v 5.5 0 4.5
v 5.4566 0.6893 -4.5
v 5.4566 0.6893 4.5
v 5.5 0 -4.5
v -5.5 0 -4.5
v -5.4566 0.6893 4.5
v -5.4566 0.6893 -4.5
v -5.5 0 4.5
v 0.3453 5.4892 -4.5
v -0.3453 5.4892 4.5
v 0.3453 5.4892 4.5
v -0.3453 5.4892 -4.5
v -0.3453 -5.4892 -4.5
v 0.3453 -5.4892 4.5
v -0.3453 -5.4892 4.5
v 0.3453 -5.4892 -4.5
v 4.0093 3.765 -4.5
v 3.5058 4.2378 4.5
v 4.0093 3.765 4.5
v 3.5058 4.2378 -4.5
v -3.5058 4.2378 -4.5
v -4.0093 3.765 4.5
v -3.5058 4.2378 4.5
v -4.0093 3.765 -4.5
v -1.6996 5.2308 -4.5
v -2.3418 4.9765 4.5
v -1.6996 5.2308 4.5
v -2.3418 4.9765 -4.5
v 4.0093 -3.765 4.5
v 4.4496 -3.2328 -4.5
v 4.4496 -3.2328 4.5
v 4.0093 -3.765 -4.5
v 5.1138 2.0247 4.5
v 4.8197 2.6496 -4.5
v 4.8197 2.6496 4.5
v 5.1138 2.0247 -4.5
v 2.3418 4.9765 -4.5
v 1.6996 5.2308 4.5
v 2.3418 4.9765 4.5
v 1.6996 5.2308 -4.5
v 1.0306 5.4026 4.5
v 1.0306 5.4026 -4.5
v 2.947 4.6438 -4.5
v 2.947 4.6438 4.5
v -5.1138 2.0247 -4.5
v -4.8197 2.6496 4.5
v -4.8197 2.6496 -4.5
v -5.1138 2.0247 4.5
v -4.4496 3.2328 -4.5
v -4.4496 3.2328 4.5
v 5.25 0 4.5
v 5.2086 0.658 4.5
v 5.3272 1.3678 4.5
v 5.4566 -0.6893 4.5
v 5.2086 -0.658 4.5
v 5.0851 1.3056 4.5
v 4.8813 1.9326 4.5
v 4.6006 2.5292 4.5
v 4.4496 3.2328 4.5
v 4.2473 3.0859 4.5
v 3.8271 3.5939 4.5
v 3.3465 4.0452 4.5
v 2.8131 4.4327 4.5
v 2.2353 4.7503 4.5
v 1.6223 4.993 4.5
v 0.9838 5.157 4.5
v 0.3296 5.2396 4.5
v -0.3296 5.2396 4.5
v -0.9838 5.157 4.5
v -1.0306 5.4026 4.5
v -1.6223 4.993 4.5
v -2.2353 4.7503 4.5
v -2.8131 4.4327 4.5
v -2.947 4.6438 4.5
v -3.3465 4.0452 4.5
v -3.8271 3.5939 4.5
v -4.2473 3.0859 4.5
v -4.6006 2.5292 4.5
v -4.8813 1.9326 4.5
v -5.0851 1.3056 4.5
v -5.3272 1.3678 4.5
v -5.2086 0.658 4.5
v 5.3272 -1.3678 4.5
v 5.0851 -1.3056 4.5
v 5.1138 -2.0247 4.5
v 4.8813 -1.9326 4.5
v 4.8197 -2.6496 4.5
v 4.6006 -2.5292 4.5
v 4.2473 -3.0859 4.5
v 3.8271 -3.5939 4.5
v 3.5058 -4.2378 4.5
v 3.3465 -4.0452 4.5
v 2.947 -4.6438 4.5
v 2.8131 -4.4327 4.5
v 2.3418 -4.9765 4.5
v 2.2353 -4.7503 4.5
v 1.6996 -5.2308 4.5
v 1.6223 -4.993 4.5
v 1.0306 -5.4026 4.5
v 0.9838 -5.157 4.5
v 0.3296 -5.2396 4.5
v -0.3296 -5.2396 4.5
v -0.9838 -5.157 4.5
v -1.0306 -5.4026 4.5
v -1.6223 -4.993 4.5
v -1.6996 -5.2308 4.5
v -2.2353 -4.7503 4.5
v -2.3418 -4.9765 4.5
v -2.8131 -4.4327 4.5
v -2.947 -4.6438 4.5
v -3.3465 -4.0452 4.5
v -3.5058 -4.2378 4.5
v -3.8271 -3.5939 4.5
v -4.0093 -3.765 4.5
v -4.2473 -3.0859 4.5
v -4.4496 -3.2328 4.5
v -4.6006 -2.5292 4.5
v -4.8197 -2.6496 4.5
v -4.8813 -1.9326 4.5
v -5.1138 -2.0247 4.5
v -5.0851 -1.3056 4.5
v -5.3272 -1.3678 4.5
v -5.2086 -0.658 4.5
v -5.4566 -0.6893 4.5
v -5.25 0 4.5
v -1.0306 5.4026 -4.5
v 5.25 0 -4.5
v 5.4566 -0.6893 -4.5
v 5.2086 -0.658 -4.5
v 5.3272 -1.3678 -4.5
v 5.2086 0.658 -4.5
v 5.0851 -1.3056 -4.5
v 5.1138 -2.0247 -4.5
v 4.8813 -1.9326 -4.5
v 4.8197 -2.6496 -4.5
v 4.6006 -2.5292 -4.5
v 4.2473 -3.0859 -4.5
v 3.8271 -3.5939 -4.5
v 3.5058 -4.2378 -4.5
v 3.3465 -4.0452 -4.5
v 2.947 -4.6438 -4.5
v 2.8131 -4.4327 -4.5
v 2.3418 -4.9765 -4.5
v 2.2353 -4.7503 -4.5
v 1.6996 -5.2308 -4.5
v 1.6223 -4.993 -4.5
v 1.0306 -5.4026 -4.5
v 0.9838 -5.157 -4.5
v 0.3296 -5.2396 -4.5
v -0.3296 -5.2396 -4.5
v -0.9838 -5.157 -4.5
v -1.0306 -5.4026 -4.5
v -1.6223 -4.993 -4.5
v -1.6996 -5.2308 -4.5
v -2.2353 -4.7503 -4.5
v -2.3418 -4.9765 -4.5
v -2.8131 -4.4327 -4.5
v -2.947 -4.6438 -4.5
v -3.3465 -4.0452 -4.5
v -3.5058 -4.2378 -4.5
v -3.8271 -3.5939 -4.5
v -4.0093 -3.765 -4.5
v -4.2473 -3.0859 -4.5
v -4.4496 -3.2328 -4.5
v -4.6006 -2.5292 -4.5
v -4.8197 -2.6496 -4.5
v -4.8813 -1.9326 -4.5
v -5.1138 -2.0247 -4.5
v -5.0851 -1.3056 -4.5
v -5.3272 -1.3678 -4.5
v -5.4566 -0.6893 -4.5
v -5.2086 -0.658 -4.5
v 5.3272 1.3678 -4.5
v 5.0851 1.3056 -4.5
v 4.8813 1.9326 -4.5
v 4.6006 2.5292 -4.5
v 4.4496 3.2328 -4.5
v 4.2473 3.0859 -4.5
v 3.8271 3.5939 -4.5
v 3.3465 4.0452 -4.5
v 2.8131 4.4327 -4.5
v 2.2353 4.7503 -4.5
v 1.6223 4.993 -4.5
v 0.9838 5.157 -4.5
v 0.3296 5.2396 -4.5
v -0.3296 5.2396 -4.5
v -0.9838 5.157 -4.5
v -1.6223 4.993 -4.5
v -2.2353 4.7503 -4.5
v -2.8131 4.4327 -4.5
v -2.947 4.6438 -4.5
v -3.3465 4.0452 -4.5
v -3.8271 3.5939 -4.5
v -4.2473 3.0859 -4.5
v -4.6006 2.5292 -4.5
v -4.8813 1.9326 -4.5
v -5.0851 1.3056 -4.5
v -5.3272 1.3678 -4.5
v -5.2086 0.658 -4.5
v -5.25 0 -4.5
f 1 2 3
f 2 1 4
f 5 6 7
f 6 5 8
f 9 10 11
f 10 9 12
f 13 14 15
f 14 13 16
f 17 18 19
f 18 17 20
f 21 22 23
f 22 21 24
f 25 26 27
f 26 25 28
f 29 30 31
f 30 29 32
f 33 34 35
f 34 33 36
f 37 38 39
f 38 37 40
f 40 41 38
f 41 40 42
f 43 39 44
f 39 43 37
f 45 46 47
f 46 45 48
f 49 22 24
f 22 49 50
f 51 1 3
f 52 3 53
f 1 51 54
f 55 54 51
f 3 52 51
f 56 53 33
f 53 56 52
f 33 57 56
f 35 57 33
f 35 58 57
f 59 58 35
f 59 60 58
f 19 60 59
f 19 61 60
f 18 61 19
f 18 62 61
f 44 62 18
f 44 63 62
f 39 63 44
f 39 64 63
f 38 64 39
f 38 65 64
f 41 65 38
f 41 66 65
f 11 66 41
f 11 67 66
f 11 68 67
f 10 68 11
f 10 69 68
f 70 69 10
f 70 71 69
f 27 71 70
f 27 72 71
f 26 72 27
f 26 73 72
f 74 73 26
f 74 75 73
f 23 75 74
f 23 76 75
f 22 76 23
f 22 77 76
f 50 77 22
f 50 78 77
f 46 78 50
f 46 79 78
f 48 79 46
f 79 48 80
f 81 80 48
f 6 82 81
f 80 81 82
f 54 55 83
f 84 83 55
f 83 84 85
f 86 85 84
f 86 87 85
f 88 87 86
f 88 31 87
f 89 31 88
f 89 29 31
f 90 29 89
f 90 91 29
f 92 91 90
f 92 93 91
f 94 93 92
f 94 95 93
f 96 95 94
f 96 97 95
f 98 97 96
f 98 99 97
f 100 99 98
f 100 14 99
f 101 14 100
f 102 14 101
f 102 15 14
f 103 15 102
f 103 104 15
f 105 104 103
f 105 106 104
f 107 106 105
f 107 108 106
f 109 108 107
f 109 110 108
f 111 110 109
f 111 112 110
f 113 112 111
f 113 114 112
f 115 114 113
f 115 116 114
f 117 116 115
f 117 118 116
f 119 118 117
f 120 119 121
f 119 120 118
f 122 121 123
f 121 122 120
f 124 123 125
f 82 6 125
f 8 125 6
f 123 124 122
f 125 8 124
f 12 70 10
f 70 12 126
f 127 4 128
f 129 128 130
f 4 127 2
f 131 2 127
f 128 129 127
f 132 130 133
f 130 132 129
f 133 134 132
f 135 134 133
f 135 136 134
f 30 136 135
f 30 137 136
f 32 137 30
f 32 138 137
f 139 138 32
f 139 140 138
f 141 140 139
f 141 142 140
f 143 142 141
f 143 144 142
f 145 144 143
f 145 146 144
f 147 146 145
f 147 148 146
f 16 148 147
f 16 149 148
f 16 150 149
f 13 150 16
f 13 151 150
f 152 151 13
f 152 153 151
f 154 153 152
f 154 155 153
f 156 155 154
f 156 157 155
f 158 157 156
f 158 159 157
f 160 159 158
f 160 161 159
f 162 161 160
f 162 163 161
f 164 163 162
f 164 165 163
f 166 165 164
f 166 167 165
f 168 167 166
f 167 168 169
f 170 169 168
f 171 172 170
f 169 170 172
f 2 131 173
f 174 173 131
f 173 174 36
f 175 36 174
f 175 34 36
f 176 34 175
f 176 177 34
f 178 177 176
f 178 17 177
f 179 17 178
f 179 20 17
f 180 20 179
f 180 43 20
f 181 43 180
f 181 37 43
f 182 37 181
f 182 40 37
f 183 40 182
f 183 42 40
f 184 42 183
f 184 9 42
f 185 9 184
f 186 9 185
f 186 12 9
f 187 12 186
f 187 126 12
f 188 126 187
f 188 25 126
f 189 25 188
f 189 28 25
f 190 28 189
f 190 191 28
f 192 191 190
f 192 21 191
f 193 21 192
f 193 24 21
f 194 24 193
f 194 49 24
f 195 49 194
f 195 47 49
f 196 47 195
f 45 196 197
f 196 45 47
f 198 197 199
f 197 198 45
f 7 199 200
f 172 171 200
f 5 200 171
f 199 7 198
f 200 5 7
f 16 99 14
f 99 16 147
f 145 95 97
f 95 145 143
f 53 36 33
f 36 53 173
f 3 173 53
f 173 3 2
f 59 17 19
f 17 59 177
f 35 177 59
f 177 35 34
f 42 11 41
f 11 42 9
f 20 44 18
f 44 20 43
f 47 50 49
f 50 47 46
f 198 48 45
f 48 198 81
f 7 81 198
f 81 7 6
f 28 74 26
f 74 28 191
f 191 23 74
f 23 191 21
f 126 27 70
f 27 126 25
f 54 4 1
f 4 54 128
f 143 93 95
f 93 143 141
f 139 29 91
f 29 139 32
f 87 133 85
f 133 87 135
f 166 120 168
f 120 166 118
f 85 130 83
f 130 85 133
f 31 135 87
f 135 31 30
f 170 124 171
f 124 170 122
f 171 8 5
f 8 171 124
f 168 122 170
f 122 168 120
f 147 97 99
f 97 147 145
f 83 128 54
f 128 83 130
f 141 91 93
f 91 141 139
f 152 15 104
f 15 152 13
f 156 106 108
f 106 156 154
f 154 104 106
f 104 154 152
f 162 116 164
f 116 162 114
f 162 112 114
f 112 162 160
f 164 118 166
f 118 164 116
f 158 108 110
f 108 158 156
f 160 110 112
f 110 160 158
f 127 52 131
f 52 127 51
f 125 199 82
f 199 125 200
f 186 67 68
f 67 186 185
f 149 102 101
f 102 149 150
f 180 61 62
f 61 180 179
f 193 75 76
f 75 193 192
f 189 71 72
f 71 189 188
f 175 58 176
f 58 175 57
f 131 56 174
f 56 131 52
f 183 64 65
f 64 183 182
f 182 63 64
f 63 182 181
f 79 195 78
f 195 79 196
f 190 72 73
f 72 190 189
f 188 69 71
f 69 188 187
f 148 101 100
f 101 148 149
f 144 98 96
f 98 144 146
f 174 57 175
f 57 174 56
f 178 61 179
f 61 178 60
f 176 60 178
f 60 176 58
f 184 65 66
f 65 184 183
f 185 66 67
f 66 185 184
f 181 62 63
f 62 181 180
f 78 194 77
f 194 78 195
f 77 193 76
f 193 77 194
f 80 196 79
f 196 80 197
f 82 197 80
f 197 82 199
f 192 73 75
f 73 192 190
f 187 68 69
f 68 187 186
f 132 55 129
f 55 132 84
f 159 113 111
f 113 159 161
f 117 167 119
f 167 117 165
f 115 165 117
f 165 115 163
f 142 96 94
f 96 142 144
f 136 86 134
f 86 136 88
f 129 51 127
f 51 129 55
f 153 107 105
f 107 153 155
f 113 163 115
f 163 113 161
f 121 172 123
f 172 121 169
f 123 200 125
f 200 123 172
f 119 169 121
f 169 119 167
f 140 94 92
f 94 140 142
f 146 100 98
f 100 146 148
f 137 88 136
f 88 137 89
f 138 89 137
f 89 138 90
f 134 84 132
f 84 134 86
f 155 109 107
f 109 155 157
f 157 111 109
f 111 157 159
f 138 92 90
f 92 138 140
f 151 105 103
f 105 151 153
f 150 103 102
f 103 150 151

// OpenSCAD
$fn = 50;


difference() {
	union() {
		translate(v = [0, 0, -4.5000000000]) {
			cylinder(h = 9, r = 5.5000000000);
		}
	}
	union() {
		translate(v = [0, 0, -100.0000000000]) {
			cylinder(h = 200, r = 5.2500000000);
		}
	}
}
